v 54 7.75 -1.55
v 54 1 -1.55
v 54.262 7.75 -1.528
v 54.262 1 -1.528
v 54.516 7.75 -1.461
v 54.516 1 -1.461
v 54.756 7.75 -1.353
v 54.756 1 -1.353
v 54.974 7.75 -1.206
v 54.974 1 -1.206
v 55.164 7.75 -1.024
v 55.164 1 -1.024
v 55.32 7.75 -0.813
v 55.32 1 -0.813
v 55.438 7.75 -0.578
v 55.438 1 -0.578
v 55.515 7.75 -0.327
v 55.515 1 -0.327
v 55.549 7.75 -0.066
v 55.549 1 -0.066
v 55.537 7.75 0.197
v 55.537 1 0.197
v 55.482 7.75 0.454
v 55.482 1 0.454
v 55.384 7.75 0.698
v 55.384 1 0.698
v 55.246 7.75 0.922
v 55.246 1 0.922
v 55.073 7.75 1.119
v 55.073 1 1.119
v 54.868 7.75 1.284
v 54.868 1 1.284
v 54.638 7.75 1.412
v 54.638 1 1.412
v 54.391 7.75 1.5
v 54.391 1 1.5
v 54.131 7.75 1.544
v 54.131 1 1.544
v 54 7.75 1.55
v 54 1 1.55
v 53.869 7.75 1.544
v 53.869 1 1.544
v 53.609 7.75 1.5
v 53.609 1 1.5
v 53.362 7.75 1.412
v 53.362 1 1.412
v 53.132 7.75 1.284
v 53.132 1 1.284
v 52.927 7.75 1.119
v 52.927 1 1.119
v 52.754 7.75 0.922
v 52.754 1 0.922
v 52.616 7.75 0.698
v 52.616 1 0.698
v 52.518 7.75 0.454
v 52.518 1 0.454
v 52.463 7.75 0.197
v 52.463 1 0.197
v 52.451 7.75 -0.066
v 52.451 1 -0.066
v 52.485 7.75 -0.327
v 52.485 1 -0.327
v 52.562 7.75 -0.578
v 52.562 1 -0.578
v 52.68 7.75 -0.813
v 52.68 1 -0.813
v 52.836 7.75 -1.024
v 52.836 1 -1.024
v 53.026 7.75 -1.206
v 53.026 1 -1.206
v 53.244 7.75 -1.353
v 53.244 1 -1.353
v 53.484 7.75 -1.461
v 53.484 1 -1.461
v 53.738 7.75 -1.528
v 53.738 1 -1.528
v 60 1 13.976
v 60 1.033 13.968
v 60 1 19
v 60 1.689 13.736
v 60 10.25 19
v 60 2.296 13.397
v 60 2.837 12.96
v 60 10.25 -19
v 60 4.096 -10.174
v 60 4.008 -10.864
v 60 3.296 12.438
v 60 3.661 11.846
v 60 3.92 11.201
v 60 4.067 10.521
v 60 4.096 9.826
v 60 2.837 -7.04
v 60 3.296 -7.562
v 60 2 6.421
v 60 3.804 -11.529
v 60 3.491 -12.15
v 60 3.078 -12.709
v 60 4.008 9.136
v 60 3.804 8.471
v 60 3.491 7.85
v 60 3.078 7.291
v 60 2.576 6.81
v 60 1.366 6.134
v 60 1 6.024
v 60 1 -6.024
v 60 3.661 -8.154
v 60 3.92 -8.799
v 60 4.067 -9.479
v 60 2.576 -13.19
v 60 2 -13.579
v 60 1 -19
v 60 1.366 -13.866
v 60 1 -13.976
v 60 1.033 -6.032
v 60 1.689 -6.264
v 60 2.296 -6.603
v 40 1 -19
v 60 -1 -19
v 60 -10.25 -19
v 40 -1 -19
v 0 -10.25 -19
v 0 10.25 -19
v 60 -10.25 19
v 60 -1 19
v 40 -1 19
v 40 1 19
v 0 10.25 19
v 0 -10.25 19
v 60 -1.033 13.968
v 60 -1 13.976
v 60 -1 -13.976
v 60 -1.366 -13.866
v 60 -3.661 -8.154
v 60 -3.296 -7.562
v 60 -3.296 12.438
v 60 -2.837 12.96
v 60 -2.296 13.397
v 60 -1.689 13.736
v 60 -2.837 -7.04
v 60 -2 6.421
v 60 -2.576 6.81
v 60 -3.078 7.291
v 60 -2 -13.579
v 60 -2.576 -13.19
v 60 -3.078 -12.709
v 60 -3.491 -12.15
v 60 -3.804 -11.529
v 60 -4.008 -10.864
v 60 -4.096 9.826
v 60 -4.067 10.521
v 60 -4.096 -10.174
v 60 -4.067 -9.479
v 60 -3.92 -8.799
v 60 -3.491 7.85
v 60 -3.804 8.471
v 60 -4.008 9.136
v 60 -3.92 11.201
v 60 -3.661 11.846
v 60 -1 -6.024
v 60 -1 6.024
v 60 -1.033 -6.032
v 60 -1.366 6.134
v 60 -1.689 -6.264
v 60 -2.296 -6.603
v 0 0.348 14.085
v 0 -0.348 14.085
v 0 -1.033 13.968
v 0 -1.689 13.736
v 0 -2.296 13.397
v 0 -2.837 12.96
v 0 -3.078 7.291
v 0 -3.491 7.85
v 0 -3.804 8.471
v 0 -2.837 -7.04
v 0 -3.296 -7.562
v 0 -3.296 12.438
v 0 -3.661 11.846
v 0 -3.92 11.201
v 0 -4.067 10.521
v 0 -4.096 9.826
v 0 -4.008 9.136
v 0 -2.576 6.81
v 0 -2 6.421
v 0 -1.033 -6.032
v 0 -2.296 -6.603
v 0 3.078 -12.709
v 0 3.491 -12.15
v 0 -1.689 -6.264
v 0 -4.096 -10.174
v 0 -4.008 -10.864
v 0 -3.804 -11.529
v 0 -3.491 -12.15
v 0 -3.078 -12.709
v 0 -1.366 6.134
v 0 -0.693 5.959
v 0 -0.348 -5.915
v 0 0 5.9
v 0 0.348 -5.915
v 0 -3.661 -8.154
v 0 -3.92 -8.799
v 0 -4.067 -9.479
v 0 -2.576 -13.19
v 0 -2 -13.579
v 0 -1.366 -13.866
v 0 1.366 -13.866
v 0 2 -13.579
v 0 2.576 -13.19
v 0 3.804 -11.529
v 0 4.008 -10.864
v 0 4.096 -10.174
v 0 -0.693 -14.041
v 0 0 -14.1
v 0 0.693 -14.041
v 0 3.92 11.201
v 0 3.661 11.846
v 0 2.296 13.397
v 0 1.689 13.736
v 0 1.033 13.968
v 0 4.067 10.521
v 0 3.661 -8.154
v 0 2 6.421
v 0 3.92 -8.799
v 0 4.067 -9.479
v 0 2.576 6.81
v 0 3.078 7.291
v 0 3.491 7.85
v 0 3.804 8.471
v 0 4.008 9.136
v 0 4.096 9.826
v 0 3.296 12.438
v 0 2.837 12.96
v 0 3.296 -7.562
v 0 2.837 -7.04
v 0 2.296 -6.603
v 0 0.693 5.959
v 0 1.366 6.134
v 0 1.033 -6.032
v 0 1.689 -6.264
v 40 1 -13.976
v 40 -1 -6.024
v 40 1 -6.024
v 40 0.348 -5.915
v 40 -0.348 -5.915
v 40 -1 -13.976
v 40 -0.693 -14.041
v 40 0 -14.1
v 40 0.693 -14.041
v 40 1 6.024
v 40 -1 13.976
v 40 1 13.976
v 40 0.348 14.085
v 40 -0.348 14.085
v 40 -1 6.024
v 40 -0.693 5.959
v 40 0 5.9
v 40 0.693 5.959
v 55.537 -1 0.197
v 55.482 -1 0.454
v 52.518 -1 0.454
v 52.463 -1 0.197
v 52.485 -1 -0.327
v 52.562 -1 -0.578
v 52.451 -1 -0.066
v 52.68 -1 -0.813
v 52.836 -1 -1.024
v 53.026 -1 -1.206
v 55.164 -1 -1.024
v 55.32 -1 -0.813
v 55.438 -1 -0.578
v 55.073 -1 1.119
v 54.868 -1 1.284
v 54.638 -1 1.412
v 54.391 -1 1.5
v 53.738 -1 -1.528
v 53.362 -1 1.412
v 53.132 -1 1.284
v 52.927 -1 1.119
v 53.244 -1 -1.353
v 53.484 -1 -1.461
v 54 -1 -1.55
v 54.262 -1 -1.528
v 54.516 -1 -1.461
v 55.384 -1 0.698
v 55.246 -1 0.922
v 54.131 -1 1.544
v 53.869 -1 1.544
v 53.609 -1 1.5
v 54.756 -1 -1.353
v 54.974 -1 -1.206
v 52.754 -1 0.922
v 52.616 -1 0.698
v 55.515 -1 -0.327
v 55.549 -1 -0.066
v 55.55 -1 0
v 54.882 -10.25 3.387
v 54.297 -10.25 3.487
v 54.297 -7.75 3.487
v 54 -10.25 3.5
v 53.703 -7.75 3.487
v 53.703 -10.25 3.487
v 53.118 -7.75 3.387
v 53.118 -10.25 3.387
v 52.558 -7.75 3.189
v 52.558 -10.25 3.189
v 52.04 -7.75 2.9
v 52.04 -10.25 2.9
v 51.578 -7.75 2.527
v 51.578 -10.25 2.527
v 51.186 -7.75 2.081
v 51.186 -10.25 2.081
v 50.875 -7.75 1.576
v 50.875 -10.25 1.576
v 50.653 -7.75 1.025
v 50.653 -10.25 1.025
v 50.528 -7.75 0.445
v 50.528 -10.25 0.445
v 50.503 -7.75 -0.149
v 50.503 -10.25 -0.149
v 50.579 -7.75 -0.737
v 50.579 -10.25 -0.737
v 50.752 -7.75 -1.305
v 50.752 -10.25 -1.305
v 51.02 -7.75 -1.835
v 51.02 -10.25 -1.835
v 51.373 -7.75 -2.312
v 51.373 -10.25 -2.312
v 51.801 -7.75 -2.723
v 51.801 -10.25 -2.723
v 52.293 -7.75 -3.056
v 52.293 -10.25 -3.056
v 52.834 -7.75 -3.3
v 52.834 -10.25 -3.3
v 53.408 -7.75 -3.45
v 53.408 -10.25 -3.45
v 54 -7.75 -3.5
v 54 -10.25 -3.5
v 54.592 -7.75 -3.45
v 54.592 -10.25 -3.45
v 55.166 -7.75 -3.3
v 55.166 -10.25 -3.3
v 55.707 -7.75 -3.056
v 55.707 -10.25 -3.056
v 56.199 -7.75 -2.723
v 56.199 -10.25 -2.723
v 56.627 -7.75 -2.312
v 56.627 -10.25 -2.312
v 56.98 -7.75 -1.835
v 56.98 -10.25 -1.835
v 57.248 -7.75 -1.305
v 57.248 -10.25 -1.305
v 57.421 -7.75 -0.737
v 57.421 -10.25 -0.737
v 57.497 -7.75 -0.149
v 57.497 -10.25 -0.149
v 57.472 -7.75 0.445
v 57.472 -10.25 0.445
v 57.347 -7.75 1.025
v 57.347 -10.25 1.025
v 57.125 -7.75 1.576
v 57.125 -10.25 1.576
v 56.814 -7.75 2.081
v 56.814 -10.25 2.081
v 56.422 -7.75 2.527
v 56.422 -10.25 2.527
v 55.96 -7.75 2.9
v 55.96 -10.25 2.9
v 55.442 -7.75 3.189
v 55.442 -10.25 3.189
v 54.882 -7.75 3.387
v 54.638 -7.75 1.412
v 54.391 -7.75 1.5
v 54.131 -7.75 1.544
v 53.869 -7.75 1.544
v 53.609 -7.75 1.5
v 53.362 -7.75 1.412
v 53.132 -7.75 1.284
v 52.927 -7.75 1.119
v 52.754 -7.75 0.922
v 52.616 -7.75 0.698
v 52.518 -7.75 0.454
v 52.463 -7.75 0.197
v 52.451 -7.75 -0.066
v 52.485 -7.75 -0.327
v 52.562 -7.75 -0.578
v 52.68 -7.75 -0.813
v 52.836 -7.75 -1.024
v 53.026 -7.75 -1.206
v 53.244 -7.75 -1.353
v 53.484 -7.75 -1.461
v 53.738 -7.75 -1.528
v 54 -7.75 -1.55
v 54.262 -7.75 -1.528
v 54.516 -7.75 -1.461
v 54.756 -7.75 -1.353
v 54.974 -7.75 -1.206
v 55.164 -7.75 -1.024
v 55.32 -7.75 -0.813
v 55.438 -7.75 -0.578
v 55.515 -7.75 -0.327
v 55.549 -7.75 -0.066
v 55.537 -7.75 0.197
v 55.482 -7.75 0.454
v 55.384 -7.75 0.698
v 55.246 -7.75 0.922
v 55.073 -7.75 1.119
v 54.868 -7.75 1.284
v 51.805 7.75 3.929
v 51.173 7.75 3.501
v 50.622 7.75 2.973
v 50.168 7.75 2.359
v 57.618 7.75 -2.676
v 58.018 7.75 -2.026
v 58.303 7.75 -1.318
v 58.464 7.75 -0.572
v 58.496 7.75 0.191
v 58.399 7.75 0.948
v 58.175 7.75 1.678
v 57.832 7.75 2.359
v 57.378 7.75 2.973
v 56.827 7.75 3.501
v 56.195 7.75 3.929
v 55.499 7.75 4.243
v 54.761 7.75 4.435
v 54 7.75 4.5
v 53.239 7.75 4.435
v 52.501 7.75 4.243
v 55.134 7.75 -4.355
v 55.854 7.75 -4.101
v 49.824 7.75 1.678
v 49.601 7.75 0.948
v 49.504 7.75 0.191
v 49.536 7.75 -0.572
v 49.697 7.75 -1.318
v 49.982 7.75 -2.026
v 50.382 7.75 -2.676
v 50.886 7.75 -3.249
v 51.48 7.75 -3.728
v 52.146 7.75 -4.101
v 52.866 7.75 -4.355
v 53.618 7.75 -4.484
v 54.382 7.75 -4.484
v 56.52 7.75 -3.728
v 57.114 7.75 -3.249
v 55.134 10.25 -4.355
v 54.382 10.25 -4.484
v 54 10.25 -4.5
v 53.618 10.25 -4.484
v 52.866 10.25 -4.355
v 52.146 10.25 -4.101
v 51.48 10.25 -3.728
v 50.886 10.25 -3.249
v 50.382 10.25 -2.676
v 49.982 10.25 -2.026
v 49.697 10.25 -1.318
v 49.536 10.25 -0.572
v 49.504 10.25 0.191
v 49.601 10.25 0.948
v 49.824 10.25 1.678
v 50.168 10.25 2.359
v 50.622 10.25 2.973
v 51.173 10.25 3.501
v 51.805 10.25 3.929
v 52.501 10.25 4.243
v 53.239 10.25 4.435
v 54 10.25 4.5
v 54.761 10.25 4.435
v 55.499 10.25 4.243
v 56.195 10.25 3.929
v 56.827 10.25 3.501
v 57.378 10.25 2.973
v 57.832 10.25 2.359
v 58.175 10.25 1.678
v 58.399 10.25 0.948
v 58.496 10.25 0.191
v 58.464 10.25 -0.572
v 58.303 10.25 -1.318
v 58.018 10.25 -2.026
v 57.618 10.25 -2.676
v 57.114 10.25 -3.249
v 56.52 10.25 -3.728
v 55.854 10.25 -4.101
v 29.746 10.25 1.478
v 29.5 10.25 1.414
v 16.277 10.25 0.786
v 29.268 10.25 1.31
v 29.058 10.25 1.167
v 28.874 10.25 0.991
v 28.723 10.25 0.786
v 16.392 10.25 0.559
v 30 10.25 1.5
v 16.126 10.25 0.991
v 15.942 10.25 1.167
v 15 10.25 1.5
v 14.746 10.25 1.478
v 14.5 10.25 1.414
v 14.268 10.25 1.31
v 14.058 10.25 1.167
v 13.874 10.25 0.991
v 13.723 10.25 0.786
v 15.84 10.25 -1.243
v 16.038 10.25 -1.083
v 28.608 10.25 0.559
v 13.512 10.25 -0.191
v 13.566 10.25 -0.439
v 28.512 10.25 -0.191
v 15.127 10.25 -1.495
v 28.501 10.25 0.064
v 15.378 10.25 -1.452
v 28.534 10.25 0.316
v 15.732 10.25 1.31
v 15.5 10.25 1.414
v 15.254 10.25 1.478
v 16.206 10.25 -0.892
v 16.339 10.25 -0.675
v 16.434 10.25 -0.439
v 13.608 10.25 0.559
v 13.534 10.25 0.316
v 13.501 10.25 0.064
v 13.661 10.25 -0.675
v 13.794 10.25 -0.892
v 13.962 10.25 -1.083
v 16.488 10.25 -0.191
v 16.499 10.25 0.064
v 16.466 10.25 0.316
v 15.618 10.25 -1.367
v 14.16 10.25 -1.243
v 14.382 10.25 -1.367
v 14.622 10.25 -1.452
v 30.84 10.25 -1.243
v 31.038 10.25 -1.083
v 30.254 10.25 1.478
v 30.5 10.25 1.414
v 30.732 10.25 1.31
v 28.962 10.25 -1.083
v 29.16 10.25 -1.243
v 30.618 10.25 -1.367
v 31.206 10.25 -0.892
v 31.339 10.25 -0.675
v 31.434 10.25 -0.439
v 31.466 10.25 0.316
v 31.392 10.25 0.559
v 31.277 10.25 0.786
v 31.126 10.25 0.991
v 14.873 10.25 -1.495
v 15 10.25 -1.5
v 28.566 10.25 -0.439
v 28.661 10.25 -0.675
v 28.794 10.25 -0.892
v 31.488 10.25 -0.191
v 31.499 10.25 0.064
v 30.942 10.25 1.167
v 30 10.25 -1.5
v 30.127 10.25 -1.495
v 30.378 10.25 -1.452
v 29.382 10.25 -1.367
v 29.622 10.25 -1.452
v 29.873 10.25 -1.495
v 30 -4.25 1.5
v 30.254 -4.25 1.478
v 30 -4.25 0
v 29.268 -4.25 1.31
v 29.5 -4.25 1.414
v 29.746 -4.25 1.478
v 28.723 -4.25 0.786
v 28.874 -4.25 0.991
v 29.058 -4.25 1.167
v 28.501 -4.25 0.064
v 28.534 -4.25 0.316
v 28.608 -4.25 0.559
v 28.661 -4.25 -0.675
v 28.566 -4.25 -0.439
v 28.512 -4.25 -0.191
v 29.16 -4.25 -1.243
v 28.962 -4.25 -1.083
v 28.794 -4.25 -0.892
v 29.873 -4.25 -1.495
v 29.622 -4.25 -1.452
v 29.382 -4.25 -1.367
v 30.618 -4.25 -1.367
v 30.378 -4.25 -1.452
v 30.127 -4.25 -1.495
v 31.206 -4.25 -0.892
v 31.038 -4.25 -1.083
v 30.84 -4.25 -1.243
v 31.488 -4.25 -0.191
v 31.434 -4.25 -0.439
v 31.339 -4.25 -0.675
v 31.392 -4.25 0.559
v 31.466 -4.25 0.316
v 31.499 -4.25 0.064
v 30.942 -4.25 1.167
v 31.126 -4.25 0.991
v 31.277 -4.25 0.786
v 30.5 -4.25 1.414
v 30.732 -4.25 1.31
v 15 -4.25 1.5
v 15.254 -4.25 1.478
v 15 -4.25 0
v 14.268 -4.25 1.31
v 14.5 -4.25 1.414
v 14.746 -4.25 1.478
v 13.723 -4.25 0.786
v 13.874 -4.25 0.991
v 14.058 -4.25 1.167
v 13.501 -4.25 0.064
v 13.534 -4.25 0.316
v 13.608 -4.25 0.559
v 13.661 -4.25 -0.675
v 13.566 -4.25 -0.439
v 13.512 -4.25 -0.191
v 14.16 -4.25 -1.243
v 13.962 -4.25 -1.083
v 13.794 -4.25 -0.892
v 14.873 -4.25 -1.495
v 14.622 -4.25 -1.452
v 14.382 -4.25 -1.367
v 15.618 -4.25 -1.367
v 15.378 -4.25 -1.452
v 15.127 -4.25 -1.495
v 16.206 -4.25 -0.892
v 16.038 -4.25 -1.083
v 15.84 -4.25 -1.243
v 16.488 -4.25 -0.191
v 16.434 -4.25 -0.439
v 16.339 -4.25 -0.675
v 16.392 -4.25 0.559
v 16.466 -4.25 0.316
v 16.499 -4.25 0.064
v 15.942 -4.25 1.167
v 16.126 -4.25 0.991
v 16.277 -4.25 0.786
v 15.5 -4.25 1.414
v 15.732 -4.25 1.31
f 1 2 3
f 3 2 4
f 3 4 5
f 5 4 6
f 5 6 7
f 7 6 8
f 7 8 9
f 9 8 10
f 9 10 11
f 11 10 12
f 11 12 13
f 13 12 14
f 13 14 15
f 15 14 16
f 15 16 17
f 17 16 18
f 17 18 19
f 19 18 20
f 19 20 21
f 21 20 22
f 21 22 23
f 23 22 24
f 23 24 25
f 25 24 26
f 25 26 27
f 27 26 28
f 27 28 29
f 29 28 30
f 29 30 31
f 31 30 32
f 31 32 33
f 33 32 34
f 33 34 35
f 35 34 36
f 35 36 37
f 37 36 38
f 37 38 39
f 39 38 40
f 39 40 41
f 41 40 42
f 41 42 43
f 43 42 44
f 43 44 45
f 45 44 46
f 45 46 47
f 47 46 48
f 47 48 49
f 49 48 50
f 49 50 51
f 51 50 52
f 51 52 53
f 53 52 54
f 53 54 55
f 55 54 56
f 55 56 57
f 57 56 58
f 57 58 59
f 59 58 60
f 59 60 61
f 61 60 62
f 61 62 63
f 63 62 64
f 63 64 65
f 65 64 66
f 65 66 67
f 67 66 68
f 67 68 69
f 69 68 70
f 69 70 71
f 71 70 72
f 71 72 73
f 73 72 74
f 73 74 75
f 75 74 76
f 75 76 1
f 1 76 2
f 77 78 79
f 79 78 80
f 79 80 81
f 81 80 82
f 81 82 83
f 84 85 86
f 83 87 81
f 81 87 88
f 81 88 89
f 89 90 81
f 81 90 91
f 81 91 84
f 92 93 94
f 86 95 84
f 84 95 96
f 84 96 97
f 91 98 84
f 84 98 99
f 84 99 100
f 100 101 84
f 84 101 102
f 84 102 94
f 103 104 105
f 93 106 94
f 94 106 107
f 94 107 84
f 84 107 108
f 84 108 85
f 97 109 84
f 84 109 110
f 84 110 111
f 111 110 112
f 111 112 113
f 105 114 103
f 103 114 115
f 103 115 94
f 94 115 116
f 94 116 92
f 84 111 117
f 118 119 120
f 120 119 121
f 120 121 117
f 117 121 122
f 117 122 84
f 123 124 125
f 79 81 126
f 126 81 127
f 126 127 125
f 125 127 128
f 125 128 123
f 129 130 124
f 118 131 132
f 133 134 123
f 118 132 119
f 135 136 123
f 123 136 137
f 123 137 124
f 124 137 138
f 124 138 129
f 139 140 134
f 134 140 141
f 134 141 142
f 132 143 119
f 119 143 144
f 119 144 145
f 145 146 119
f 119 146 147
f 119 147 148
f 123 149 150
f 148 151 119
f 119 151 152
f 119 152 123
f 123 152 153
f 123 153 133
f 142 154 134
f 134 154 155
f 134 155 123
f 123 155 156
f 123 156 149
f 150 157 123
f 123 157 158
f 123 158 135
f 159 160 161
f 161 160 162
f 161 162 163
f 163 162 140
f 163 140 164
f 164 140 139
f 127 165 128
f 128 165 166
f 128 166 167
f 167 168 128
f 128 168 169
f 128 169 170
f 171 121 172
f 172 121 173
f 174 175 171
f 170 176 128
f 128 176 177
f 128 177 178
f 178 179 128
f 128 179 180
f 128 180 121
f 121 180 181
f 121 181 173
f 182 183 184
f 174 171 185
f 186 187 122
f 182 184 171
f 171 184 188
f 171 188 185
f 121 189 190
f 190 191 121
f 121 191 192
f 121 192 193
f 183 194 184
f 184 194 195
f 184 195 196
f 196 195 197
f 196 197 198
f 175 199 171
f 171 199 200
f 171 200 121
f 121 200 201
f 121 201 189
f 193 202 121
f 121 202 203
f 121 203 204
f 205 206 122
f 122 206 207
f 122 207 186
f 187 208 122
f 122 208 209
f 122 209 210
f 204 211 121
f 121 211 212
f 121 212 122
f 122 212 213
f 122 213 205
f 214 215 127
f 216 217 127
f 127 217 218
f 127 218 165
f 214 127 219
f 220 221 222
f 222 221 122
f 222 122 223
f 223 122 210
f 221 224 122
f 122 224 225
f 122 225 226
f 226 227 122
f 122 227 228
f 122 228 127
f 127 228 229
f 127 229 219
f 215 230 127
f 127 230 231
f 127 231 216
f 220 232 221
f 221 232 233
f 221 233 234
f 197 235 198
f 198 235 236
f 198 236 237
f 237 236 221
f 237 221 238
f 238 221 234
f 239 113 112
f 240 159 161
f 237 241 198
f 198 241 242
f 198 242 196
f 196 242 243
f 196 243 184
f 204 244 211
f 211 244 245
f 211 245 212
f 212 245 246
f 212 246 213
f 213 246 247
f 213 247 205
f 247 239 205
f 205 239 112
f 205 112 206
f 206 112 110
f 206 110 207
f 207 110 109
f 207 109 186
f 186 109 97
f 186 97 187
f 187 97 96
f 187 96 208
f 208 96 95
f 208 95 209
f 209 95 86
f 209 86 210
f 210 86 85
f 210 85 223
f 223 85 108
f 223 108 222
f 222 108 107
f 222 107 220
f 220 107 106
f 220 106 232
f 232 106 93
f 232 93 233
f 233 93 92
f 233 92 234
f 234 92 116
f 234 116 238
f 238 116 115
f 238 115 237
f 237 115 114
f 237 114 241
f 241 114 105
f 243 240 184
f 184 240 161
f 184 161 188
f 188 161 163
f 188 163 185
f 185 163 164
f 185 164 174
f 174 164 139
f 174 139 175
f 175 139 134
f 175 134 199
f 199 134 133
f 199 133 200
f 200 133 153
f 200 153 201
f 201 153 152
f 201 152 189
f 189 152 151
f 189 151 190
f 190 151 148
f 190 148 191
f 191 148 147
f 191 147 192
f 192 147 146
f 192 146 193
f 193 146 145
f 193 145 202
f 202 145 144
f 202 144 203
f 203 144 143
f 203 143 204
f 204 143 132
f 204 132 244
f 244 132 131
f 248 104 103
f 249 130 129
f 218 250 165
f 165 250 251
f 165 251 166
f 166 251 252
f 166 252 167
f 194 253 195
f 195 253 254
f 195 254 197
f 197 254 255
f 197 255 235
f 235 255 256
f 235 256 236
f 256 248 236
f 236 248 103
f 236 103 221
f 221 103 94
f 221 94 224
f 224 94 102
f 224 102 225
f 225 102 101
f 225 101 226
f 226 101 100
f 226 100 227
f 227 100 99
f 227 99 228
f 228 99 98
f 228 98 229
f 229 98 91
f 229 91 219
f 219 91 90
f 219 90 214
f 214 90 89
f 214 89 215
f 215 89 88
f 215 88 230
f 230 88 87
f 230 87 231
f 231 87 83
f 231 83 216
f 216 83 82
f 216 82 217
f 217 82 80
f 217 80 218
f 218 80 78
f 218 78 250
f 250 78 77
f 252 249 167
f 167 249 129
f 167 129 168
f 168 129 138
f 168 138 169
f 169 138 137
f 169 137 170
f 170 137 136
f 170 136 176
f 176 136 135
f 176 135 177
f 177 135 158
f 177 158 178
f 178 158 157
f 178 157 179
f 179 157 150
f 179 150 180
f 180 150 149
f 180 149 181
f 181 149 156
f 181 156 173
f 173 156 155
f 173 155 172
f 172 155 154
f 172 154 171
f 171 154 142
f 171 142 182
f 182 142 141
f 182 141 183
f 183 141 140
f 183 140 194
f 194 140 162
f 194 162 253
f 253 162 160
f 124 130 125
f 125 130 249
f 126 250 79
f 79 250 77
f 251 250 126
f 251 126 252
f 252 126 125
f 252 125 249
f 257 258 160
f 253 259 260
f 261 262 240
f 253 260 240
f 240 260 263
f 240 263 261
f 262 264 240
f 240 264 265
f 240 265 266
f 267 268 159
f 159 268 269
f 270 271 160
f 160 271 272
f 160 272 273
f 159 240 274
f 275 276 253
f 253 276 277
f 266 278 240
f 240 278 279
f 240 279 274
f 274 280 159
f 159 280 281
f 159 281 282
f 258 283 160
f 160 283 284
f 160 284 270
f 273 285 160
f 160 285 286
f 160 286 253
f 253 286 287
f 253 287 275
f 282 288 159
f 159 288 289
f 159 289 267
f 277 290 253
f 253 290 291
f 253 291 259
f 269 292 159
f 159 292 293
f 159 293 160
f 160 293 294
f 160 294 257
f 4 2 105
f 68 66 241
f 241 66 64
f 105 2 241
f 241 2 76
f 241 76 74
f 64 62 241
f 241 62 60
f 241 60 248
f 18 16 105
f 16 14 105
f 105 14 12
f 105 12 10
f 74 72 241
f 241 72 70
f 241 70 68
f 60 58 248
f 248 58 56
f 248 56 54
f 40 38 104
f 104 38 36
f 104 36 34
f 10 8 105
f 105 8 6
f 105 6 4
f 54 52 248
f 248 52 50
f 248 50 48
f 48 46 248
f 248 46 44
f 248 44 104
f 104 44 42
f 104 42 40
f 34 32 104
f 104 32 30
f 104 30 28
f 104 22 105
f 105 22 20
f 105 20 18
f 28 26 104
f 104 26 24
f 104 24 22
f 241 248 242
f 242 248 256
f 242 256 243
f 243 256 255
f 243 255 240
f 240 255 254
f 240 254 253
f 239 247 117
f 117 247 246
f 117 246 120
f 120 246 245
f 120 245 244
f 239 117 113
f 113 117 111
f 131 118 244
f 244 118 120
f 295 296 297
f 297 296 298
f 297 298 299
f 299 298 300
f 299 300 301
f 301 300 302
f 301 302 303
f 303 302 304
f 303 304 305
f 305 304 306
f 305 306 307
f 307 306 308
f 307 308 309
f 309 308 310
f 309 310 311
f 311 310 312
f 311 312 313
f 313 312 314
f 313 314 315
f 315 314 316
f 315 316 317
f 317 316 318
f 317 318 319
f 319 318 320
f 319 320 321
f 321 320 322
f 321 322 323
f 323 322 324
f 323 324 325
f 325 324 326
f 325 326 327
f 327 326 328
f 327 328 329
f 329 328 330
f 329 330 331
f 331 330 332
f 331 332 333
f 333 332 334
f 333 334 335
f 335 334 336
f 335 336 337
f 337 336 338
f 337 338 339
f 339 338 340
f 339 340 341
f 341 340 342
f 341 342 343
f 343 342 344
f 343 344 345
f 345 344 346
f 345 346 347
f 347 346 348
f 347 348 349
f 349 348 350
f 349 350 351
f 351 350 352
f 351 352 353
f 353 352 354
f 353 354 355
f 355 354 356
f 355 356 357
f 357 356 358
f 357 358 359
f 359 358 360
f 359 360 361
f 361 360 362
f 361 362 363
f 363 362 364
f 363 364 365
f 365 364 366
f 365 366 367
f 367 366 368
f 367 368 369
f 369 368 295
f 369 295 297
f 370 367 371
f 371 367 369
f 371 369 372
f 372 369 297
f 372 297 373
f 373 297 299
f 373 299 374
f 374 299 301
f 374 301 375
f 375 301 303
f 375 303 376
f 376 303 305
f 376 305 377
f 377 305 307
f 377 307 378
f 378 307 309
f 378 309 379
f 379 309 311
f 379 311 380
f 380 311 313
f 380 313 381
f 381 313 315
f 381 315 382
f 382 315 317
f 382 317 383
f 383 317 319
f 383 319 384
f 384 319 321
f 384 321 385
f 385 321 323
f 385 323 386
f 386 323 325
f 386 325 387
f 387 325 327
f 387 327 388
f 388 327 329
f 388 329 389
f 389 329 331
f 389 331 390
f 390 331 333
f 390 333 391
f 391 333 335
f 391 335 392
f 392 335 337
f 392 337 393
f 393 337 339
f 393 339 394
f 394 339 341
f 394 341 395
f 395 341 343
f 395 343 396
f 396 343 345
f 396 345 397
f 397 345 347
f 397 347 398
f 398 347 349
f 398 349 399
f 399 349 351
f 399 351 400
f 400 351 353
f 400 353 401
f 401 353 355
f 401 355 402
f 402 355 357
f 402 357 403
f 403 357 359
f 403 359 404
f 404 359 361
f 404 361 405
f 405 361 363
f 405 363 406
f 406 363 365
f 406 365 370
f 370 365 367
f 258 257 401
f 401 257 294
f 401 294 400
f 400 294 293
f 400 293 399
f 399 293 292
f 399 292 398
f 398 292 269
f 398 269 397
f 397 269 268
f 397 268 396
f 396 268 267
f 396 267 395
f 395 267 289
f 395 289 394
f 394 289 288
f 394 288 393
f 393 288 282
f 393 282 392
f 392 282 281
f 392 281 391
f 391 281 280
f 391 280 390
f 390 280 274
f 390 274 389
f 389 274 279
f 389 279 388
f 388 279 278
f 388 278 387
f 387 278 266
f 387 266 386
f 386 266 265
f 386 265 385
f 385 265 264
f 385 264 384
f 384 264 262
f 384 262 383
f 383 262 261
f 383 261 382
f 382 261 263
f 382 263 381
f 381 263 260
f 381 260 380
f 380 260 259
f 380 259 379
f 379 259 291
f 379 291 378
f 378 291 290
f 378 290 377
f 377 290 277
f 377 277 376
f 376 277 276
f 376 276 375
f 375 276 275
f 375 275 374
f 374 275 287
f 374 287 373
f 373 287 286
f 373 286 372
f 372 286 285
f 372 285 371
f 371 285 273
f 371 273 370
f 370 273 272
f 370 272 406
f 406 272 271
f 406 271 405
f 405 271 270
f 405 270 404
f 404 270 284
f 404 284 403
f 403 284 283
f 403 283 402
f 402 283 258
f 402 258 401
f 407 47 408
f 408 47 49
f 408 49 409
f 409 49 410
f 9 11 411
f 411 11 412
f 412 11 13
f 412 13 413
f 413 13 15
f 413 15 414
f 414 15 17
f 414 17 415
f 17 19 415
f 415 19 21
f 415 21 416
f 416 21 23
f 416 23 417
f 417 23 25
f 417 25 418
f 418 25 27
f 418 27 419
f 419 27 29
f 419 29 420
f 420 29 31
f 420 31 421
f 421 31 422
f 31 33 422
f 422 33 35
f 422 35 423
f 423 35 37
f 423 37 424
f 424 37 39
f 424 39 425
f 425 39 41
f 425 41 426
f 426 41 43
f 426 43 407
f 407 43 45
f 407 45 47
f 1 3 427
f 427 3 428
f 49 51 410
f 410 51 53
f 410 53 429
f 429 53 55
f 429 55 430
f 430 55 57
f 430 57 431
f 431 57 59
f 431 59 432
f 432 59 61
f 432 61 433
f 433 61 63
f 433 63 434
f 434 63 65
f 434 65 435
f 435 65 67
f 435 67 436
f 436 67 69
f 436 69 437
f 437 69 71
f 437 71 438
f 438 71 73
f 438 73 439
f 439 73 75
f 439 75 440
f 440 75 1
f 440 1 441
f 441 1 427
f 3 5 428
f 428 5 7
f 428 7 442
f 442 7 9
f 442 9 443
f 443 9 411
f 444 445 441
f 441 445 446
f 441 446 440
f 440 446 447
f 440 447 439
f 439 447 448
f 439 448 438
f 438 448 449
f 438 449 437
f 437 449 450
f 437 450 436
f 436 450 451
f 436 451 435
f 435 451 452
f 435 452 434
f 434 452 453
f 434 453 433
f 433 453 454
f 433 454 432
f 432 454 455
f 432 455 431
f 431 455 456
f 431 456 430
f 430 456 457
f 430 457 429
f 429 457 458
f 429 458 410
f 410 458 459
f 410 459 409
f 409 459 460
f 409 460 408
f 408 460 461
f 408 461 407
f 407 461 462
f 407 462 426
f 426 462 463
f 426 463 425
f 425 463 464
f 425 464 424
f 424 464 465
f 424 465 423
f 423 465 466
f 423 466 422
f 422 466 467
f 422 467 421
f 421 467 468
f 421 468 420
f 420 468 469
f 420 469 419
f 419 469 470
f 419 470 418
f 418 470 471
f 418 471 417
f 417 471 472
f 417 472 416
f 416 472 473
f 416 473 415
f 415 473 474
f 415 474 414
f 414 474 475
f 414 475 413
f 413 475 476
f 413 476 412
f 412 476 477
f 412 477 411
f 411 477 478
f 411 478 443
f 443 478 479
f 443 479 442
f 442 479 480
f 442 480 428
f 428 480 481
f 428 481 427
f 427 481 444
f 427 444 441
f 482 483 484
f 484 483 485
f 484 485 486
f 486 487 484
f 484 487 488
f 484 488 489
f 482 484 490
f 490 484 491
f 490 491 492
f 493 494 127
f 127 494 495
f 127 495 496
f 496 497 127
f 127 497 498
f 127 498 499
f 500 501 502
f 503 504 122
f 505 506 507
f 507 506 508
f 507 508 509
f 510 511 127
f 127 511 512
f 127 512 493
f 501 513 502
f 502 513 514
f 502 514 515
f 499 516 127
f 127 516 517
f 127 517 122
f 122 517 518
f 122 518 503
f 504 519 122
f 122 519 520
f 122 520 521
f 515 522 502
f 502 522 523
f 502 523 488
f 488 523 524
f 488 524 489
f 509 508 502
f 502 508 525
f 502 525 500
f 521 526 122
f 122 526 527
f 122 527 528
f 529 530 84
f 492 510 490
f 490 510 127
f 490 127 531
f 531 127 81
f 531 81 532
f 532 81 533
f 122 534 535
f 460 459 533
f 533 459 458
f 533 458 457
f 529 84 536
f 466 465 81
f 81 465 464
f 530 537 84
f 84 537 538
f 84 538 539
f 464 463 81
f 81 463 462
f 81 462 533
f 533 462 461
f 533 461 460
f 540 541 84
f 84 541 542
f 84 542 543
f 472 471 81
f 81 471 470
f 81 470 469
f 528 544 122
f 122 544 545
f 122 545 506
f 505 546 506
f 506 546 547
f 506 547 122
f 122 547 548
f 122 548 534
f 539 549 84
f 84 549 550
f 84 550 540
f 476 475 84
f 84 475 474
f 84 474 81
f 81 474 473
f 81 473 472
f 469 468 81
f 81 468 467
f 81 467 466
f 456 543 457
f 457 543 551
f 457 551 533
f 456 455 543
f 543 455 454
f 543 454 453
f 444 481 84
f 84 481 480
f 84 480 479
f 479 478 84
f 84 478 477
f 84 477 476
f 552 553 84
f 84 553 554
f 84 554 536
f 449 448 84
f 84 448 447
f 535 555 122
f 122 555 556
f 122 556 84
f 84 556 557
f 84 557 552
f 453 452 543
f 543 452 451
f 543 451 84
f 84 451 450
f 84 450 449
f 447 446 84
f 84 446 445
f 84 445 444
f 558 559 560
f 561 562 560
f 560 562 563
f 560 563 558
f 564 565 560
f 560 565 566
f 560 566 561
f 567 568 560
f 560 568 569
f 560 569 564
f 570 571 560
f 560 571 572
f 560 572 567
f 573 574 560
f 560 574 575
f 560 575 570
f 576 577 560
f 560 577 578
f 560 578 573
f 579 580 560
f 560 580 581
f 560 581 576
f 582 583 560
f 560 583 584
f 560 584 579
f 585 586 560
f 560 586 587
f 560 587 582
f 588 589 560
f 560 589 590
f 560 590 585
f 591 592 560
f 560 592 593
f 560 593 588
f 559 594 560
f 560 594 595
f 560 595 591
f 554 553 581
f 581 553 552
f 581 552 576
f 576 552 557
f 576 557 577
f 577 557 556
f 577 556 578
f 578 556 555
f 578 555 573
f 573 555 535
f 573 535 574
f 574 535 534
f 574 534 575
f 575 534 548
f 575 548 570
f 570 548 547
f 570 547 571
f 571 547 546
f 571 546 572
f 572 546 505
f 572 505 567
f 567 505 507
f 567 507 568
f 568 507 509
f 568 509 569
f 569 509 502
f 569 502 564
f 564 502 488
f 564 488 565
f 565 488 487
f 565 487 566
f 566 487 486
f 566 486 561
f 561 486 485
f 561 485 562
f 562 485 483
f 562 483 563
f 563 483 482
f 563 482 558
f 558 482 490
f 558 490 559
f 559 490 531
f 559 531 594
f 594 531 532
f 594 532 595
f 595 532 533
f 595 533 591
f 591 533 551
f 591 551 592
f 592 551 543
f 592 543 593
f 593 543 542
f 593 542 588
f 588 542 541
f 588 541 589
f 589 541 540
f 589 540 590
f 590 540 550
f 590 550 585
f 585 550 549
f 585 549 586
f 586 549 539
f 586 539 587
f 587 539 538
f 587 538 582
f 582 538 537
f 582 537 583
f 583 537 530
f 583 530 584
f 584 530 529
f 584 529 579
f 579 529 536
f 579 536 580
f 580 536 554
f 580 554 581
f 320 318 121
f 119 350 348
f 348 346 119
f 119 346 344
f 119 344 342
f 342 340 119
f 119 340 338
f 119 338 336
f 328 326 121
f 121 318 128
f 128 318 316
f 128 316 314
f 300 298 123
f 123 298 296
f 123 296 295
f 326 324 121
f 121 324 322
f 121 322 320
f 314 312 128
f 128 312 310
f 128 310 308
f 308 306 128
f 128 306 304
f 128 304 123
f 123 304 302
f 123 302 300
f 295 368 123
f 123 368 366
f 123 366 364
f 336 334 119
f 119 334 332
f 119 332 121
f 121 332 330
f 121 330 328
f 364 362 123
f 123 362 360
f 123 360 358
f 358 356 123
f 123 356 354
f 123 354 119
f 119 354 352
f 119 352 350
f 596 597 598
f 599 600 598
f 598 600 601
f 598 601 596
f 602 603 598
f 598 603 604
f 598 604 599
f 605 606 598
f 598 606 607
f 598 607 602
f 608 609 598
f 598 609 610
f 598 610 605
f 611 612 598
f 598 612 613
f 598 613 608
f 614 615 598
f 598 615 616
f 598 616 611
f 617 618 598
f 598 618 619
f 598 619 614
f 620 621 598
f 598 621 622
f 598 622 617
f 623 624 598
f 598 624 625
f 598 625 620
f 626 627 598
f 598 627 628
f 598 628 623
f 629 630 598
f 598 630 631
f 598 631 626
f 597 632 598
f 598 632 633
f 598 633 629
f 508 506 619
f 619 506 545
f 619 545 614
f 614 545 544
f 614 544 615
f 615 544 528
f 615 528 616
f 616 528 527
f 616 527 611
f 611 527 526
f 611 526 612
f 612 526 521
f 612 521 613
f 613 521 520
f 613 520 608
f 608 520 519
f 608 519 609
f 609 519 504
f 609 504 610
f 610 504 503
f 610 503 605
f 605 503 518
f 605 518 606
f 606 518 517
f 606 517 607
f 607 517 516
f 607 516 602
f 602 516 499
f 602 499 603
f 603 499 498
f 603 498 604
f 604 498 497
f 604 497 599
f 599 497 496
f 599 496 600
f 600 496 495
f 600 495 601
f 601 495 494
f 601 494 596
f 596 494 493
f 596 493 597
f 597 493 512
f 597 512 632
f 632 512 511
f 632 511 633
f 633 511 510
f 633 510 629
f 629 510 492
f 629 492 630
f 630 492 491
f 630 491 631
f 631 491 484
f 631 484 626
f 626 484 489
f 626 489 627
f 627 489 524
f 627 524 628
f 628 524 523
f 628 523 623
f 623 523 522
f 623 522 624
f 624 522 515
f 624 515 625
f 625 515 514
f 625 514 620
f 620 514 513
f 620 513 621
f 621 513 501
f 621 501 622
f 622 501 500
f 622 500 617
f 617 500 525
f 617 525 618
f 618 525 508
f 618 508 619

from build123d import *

# Parameters (mm, degrees)
CROQUIS3_W              = 38
CROQUIS3_H              = 21.5
SALIENTE_EXTRUIR2_DEPTH = 60
CROQUIS4_R              = 4.1
CORTAR_EXTRUIR2_DEPTH   = 60
CROQUIS5_W              = 20
CROQUIS5_H              = 2
CORTAR_EXTRUIR4_DEPTH   = 39
CROQUIS6_R              = 3.5
CORTAR_EXTRUIR5_DEPTH   = 3
CROQUIS7_R              = 1.55
CORTAR_EXTRUIR6_DEPTH   = 22
CROQUIS8_R              = 4.5
CORTAR_EXTRUIR7_DEPTH   = 3
CROQUIS9_R              = 1.5
CORTAR_EXTRUIR8_DEPTH   = 15
CROQUIS10_W             = 38
CROQUIS10_H             = 0.5
CORTAR_EXTRUIR9_DEPTH   = 60


with BuildPart() as part:
    # Croquis3 → Saliente-Extruir2 (new body)
    with BuildSketch(Plane(origin=(0, 0, 0), x_dir=(0, 0, -1), z_dir=(1, 0, 0))):
        Rectangle(CROQUIS3_W, CROQUIS3_H)
    extrude(amount=SALIENTE_EXTRUIR2_DEPTH)

    # Croquis4 → Cortar-Extruir2 (cut)
    with BuildSketch(Plane(origin=(60, 0, 0), x_dir=(0, 0, -1), z_dir=(1, 0, 0))):
        with Locations((-10, 0)):
            Circle(CROQUIS4_R)
        with Locations((10, 0)):
            Circle(CROQUIS4_R)
    extrude(amount=-CORTAR_EXTRUIR2_DEPTH, mode=Mode.SUBTRACT)

    # Croquis5 → Cortar-Extruir4 (cut)
    with BuildSketch(Plane.XY.offset(19)):
        with Locations((50, 0)):
            Rectangle(CROQUIS5_W, CROQUIS5_H)
    extrude(amount=-CORTAR_EXTRUIR4_DEPTH, mode=Mode.SUBTRACT)

    # Croquis6 → Cortar-Extruir5 (cut)
    with BuildSketch(Plane.XZ.offset(10.75)):
        with Locations(Location((54, 0, 0), (0, 0, 270))):
            Circle(CROQUIS6_R)
    extrude(amount=-CORTAR_EXTRUIR5_DEPTH, mode=Mode.SUBTRACT)

    # Croquis7 → Cortar-Extruir6 (cut)
    with BuildSketch(Plane.XZ.offset(10.75)):
        with Locations(Location((54, 0, 0), (0, 0, 270))):
            Circle(CROQUIS7_R)
    extrude(amount=-CORTAR_EXTRUIR6_DEPTH, mode=Mode.SUBTRACT)

    # Croquis8 → Cortar-Extruir7 (cut)
    with BuildSketch(Plane(origin=(0, 10.75, 0), x_dir=(1, 0, 0), z_dir=(0, 1, 0))):
        with Locations(Location((54, 0, 0), (0, 0, 270))):
            Circle(CROQUIS8_R)
    extrude(amount=-CORTAR_EXTRUIR7_DEPTH, mode=Mode.SUBTRACT)

    # Croquis9 → Cortar-Extruir8 (cut)
    with BuildSketch(Plane(origin=(0, 10.75, 0), x_dir=(1, 0, 0), z_dir=(0, 1, 0))):
        with Locations(Location((30, 0, 0), (0, 0, 270))):
            Circle(CROQUIS9_R)
        with Locations(Location((15, 0, 0), (0, 0, 270))):
            Circle(CROQUIS9_R)
    extrude(amount=-CORTAR_EXTRUIR8_DEPTH, mode=Mode.SUBTRACT)

    # Croquis10 → Cortar-Extruir9 (cut)
    with BuildSketch(Plane.ZY):
        with Locations((0, 10.5)):
            Rectangle(CROQUIS10_W, CROQUIS10_H)
        with Locations((0, -10.5)):
            Rectangle(CROQUIS10_W, CROQUIS10_H)
    extrude(amount=-CORTAR_EXTRUIR9_DEPTH, mode=Mode.SUBTRACT)


solid = part.part
